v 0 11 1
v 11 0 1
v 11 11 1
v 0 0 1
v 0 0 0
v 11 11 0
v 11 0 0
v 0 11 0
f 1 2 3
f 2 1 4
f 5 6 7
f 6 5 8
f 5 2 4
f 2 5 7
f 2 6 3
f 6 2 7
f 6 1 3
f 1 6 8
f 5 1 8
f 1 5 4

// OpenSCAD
/* Warning, this is a very basic generator with a lot of approximation 
input data : [VQFN, 8FX, 11x11x1.0mm, 80, , A, C04-00301A]
generated by com.zoubworld.electronics.cad.model3d.Basic
Date : Sun Feb 15 10:50:48 CET 2026
*/

//body
color("black")
translate([0,0,0])
cube([11.0,11.0,1.0], center=false);
